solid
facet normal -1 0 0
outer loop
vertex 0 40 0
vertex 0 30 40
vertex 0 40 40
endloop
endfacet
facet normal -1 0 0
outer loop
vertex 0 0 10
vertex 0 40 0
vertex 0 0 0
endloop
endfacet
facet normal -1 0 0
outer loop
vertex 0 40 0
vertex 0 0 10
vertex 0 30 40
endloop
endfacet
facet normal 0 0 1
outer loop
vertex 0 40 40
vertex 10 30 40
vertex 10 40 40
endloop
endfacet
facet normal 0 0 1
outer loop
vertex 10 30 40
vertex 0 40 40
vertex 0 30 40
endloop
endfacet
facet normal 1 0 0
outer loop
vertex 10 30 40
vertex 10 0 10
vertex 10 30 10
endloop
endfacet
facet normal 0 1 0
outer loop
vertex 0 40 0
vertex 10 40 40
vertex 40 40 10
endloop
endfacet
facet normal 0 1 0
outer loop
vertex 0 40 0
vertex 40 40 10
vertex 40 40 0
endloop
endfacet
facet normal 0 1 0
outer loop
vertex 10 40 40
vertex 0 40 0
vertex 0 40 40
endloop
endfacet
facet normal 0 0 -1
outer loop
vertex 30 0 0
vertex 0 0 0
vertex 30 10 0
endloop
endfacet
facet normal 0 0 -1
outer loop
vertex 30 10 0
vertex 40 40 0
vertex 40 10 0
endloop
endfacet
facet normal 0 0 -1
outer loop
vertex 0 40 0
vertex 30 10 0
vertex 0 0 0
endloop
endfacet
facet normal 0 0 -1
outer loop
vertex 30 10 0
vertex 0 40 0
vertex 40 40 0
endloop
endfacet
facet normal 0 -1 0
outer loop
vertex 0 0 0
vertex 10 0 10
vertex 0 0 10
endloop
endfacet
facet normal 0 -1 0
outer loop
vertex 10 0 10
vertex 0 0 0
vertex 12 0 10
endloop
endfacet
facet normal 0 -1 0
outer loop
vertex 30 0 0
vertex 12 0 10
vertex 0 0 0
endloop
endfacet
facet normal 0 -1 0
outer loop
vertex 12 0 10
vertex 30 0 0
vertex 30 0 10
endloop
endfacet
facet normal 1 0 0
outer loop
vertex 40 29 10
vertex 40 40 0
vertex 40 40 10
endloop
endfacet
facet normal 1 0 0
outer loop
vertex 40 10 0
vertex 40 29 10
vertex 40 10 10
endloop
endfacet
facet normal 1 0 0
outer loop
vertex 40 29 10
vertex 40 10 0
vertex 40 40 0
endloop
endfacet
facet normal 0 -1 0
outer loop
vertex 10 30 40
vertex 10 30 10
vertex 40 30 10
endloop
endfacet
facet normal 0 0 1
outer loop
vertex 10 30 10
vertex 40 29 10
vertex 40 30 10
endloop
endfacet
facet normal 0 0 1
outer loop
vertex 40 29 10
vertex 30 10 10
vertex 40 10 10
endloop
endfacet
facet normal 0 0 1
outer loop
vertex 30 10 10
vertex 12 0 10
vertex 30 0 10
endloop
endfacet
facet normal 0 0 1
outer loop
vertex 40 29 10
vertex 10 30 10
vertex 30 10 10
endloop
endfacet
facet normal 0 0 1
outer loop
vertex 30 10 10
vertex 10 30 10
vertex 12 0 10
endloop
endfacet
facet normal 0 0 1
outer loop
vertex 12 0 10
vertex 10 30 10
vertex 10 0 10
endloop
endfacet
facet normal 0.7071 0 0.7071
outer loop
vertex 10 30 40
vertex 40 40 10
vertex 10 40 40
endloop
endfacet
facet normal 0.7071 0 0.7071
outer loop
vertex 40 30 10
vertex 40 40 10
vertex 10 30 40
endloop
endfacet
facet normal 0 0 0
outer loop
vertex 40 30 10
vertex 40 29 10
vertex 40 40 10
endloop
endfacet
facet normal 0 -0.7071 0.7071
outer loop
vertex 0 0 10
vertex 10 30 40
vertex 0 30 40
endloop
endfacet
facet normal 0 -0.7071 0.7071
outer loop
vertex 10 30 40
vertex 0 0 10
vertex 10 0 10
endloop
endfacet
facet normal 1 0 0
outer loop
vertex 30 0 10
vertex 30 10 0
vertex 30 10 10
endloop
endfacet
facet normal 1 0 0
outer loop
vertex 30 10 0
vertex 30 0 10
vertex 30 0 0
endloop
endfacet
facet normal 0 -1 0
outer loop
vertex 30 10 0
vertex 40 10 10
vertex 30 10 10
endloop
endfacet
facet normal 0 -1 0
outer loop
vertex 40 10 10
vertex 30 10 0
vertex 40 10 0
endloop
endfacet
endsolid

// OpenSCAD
difference(){
union(){
//lateral
cube([10,40,40]);
// pared fondo
translate([0,30,0])
cube([40,10,40]);
// base
cube([40,40,10]);
//plano fondo
}
union(){
translate([10,29,40])
rotate([0,45,0])
cube([50,12,30]);
//plano lateral
translate([0,0,10])
rotate([45,0,0])
cube([12,50,50]);
// hueco
translate([30,0,0])
cube([10,10,20]);
}
}
